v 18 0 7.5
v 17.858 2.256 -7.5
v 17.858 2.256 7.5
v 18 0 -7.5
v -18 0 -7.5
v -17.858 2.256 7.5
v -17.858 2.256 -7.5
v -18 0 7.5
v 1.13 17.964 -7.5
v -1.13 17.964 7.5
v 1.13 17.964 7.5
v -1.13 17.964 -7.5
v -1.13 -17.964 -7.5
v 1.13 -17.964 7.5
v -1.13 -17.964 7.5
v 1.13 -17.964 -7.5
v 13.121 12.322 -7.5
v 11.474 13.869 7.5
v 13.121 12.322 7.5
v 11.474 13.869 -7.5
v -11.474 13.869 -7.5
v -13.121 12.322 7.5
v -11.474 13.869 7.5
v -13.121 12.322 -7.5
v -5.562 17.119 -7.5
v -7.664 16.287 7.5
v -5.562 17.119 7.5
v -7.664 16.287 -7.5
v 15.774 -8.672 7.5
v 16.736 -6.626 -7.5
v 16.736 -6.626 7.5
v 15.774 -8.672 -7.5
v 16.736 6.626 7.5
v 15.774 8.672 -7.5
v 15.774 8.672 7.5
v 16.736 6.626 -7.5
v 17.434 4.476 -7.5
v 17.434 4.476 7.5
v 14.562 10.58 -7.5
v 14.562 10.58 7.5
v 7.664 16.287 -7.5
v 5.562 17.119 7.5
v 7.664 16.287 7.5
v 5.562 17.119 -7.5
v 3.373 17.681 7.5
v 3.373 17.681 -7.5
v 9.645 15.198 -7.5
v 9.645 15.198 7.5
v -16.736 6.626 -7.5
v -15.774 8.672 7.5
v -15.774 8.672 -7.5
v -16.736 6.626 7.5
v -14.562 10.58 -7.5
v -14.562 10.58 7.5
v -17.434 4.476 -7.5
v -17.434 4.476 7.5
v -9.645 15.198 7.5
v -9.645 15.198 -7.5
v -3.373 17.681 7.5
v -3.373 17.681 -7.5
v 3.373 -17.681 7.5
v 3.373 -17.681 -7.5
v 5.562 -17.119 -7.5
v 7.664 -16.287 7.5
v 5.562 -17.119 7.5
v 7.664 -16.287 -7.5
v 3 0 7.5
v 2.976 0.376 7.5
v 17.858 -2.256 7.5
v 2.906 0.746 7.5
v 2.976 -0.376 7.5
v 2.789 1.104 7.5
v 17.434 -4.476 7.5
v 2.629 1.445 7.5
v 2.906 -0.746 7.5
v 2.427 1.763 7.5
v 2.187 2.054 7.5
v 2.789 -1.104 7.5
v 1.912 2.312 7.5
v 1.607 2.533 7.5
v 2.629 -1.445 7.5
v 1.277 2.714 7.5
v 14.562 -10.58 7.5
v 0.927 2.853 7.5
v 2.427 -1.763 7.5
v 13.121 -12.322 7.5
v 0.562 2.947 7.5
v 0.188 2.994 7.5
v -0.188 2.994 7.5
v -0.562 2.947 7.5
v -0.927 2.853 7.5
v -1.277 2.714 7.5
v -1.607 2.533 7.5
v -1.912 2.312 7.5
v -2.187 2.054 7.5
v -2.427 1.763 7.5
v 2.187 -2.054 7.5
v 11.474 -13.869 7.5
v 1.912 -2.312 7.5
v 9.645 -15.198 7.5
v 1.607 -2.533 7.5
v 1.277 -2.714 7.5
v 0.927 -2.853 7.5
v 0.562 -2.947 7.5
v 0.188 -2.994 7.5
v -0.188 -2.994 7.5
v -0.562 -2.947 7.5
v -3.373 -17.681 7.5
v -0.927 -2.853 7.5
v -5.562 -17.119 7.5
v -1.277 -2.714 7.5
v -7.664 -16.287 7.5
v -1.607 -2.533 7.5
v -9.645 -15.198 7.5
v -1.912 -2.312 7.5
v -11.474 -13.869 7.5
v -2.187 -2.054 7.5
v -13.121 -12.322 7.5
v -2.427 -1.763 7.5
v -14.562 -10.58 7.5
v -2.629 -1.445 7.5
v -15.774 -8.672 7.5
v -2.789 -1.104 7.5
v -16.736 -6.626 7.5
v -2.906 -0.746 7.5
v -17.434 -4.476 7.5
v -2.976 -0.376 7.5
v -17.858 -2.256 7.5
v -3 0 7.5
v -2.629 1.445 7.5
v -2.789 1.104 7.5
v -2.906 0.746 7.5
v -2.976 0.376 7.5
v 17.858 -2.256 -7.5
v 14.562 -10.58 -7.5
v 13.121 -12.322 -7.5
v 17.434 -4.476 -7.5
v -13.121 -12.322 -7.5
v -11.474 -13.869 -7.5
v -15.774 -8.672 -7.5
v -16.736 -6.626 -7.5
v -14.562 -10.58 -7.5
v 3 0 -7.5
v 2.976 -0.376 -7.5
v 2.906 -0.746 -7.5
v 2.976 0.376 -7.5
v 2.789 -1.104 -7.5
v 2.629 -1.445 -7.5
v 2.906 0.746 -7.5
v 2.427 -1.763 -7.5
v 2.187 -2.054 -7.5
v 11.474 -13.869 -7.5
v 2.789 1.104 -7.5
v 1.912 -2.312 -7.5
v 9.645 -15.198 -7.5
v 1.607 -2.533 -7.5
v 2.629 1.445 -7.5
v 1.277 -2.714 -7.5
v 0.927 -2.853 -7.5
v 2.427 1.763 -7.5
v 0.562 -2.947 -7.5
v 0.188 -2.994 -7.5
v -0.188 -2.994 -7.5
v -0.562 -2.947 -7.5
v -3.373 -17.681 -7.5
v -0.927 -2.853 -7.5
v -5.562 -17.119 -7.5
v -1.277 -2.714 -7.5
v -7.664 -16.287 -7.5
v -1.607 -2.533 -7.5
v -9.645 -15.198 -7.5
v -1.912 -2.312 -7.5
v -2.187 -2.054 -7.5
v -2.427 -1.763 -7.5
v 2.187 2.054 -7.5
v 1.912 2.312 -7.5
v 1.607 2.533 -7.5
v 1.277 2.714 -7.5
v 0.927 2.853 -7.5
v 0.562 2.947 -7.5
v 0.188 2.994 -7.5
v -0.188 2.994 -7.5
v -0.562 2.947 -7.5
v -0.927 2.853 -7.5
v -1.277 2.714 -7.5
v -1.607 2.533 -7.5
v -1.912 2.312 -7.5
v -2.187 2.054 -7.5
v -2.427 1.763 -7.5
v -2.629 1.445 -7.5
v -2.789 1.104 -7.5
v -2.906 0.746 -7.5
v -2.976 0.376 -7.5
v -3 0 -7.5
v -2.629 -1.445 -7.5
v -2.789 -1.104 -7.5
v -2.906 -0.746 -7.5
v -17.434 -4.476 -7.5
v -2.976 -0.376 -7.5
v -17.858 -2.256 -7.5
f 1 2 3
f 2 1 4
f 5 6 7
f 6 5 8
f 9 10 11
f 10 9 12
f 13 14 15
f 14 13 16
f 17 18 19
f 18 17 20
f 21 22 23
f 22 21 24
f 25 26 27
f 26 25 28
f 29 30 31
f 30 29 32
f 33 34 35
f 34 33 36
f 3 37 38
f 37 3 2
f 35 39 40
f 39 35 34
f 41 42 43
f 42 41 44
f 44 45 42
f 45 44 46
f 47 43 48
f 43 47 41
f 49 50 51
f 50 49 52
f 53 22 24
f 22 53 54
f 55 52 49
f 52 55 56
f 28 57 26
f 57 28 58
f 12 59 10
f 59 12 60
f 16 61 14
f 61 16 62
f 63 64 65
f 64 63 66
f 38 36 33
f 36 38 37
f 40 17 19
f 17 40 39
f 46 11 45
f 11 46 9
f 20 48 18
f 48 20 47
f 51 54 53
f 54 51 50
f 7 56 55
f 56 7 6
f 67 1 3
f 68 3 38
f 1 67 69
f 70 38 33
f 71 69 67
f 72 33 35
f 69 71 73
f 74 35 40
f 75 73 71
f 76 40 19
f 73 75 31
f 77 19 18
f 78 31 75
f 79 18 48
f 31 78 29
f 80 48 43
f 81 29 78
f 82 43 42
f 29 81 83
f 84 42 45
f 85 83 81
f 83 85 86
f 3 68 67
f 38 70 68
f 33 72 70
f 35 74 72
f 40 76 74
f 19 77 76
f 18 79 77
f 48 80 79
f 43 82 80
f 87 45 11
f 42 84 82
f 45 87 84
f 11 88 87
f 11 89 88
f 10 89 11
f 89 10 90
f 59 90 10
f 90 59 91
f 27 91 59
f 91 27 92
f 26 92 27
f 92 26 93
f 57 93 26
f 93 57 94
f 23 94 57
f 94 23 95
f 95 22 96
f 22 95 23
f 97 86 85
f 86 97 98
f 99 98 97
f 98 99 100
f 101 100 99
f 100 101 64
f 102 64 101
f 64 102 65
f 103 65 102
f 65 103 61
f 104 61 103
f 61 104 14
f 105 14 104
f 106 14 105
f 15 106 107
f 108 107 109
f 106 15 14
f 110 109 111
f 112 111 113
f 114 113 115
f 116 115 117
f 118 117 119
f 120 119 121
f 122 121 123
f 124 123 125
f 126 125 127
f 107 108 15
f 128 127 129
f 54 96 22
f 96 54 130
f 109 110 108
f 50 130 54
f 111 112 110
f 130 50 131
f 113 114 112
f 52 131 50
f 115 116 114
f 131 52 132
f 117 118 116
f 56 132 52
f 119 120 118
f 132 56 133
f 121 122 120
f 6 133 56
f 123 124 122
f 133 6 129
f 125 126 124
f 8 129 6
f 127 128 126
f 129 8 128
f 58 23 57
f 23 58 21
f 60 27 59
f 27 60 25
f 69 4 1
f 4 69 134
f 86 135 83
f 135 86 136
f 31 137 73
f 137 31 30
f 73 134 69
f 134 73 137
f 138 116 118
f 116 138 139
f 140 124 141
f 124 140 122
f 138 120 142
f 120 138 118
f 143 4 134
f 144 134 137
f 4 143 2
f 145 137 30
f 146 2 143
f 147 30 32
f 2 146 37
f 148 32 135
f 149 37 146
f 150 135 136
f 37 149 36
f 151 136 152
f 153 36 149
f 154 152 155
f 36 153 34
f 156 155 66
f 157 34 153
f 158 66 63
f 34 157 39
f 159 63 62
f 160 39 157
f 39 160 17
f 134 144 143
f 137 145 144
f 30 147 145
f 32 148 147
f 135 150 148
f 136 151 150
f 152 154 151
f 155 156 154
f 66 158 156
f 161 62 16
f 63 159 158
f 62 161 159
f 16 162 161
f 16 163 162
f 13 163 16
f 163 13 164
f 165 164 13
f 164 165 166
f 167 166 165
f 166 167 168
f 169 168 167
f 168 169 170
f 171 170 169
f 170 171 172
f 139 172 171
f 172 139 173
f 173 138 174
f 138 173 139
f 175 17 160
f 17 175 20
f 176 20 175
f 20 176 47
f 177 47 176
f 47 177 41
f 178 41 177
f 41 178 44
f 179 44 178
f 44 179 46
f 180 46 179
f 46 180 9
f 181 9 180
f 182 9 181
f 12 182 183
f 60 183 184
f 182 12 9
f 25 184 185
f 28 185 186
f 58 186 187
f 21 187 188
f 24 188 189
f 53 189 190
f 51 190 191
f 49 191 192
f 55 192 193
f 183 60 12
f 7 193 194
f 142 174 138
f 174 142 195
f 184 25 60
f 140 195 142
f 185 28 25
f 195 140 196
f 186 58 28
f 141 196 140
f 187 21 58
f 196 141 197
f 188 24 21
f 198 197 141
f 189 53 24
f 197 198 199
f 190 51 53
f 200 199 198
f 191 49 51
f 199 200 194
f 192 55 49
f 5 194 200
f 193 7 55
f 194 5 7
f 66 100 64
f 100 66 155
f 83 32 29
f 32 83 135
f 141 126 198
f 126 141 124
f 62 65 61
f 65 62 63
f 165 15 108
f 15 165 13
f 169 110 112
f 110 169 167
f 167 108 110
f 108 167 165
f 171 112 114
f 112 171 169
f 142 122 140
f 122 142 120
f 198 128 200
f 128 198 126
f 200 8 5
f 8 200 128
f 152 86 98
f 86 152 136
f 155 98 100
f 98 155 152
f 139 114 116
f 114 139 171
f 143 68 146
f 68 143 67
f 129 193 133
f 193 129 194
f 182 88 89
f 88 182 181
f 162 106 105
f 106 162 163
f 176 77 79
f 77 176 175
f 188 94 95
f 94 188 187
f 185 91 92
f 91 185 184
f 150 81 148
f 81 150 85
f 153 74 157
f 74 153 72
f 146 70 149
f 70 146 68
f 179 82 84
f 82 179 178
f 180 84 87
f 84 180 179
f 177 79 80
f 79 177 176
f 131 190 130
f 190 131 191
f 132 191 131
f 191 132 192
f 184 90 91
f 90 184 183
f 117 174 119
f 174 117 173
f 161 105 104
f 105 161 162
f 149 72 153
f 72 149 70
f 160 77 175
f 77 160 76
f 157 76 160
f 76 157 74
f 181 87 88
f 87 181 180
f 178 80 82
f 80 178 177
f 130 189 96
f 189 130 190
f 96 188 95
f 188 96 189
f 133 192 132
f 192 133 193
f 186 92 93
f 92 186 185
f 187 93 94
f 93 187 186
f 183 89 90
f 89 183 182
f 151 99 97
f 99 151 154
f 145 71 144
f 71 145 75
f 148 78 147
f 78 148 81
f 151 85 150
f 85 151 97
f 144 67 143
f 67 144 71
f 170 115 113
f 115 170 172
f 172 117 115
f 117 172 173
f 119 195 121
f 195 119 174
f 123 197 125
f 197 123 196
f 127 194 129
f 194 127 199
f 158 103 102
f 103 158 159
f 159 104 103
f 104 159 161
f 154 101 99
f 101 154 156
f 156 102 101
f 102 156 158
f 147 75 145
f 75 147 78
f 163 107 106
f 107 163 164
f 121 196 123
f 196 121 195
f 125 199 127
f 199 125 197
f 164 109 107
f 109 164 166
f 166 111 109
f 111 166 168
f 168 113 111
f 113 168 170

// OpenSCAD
$fn = 50;


difference() {
	union() {
		translate(v = [0, 0, -7.5000000000]) {
			cylinder(h = 15, r = 18.0000000000);
		}
	}
	union() {
		translate(v = [0, 0, -100.0000000000]) {
			cylinder(h = 200, r = 3.0000000000);
		}
	}
}
